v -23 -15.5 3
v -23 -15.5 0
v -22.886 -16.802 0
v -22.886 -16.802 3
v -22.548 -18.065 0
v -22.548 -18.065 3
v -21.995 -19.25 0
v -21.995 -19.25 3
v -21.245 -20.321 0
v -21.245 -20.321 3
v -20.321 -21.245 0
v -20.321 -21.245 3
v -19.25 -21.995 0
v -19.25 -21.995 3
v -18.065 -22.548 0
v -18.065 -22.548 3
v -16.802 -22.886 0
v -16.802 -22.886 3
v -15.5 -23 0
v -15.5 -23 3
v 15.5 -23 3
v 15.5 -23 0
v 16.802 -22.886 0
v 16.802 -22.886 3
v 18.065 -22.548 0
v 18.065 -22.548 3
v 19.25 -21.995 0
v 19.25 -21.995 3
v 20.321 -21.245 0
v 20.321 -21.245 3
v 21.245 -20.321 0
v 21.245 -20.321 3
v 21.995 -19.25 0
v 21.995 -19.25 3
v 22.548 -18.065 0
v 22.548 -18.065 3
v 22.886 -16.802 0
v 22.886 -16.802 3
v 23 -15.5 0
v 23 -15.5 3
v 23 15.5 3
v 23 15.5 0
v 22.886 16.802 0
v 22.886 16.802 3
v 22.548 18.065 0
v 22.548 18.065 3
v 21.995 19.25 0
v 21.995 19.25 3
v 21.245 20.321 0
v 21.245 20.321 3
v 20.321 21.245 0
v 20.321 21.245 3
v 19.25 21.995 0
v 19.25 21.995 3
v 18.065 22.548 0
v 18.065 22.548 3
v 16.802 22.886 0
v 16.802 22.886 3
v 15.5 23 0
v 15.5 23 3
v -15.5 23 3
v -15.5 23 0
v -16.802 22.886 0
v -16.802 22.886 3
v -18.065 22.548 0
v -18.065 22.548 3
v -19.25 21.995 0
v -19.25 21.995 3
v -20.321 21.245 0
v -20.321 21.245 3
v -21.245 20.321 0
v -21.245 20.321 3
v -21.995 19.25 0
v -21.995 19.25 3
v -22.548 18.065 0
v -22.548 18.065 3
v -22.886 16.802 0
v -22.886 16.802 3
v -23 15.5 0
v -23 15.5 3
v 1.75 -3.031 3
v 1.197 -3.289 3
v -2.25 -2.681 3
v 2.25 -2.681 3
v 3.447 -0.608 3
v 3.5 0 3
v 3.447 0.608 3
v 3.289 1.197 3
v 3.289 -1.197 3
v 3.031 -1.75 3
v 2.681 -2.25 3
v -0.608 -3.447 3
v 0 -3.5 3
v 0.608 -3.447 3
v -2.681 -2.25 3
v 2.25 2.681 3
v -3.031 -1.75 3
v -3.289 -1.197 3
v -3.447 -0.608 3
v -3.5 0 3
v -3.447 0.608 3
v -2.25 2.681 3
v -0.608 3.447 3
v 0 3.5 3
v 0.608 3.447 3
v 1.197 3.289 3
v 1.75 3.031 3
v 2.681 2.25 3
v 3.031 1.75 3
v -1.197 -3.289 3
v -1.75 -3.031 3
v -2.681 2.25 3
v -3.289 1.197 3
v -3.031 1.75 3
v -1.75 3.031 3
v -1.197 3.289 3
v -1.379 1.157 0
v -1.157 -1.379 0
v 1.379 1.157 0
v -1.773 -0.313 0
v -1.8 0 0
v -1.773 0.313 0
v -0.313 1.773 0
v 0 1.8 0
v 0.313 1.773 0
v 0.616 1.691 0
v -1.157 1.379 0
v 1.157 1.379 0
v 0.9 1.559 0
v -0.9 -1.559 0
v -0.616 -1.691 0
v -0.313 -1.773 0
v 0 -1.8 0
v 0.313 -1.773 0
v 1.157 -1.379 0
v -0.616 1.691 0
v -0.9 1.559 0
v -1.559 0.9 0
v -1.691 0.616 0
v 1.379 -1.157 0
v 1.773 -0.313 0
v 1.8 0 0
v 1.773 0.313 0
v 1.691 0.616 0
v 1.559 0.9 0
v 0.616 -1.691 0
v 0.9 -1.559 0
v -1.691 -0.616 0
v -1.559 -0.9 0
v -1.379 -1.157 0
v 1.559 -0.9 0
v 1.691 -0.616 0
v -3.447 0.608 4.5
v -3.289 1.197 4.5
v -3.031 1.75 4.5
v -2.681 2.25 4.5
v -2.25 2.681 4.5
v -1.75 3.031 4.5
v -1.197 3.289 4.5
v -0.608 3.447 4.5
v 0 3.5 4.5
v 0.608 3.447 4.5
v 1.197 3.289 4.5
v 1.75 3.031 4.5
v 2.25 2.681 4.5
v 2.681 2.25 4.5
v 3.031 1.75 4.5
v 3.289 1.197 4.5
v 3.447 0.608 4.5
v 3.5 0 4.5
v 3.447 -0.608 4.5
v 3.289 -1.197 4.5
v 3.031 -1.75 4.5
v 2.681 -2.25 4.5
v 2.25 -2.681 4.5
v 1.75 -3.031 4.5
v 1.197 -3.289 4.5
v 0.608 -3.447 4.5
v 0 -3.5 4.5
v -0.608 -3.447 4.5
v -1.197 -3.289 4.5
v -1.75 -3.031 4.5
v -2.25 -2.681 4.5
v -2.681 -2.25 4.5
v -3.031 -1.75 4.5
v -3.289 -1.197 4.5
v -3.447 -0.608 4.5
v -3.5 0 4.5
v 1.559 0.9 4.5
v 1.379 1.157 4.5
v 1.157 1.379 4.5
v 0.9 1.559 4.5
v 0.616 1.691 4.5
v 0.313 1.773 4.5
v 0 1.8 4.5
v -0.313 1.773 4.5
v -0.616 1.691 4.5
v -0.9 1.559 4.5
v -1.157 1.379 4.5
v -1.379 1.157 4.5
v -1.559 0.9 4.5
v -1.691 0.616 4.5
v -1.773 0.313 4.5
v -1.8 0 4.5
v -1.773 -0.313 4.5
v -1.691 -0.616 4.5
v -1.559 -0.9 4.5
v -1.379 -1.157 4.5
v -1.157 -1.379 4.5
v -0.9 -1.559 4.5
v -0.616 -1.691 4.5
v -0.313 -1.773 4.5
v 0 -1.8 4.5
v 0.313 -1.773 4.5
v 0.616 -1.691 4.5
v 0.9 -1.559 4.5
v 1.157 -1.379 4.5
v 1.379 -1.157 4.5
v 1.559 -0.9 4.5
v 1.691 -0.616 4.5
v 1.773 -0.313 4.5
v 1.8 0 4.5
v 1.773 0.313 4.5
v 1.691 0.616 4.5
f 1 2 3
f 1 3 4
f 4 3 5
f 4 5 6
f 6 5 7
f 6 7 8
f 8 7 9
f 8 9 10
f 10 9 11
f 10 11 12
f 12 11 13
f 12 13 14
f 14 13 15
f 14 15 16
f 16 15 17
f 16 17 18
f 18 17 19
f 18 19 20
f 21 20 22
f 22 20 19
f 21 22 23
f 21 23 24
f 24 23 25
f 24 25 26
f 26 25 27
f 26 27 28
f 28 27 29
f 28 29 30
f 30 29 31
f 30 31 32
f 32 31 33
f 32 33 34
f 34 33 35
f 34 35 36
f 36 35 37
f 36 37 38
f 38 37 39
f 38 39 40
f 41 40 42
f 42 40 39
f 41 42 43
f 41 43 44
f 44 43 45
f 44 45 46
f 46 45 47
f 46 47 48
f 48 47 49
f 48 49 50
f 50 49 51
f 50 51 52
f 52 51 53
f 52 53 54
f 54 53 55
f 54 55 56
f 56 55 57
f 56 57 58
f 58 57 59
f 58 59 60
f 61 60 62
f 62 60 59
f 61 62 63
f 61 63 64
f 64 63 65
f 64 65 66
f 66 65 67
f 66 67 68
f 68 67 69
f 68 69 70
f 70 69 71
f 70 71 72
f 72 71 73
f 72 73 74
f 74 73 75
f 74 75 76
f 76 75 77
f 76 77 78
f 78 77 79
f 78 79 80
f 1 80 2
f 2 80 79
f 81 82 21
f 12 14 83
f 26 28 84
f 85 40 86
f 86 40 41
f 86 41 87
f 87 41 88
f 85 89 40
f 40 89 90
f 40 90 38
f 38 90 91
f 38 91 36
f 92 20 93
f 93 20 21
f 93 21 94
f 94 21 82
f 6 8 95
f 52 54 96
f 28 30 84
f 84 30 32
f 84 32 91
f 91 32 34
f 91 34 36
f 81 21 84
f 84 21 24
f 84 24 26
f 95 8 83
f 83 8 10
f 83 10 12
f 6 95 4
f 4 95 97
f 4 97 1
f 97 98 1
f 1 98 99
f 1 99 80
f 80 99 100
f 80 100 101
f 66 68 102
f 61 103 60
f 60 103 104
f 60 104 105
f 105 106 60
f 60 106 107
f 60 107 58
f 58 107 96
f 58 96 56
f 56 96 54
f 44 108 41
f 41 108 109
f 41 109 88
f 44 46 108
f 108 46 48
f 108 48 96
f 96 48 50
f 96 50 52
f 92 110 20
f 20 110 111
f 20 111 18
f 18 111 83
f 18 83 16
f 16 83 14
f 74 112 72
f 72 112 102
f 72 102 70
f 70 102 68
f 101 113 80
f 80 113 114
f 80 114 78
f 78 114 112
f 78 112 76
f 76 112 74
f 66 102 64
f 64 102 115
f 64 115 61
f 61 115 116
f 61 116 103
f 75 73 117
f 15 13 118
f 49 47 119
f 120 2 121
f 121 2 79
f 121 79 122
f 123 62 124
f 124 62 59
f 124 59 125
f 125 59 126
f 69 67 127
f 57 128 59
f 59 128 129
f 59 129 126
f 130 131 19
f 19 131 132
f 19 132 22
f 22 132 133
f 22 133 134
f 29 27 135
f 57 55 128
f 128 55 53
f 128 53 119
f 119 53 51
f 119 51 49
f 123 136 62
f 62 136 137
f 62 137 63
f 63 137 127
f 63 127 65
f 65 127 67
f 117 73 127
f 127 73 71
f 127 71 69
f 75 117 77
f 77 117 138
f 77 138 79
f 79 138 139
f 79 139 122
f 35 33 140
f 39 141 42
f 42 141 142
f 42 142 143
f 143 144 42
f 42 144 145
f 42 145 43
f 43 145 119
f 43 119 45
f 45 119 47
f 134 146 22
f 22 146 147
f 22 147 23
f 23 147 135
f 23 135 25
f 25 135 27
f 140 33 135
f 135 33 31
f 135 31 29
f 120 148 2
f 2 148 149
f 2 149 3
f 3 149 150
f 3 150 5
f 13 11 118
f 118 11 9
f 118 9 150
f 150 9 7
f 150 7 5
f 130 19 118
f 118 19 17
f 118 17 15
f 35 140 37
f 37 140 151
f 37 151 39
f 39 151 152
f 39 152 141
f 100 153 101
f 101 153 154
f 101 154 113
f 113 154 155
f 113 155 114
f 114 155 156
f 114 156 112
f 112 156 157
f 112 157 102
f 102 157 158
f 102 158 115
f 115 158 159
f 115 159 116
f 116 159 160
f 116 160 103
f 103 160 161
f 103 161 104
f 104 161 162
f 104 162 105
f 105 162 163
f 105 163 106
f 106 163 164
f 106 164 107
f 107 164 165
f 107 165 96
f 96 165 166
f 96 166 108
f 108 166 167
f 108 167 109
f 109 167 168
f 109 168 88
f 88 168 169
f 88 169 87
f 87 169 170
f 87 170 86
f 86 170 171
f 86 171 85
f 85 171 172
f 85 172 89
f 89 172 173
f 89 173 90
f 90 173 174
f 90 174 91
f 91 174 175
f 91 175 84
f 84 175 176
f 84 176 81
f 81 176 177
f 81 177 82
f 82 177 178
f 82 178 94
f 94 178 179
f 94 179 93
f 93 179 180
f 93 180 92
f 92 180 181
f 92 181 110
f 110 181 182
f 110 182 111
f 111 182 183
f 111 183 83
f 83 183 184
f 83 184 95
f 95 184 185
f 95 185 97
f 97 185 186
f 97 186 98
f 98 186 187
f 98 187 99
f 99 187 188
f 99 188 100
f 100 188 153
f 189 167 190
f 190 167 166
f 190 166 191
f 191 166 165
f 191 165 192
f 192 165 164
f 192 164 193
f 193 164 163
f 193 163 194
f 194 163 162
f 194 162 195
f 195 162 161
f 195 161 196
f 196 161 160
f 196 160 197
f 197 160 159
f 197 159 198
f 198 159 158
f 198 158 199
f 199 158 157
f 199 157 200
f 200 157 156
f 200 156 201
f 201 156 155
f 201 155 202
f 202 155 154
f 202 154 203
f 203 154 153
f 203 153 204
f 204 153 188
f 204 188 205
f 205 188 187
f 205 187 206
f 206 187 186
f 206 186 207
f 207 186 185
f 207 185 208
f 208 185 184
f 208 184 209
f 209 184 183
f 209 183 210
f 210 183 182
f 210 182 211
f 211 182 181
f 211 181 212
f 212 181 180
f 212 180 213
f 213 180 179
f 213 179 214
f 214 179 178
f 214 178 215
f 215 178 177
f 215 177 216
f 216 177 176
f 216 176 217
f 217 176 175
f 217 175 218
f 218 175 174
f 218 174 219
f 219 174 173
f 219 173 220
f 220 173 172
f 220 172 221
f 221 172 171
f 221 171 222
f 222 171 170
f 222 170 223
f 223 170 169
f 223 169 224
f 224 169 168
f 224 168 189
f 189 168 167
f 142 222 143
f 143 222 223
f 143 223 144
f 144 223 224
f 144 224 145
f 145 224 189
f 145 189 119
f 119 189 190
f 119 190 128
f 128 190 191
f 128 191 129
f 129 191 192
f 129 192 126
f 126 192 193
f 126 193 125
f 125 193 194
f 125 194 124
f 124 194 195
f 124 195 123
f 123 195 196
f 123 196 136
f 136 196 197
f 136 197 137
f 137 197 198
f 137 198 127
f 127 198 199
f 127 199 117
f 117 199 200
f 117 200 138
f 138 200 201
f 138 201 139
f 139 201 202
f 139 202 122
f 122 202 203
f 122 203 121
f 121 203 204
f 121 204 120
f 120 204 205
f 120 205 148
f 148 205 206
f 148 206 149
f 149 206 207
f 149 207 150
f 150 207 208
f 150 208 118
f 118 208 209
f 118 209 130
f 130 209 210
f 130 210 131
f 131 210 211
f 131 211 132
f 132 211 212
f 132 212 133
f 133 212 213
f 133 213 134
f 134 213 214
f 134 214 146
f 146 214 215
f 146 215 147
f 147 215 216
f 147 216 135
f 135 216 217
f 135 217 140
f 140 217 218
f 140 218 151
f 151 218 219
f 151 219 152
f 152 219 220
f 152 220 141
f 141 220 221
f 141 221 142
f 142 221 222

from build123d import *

# Parameters (mm, degrees)
BOSS_EXTRUDE1_DEPTH            = 3
SKETCH2_R                      = 3.5
BOSS_EXTRUDE2_DEPTH            = 1.5
M3_CLEARANCE_HOLE1_D           = 3.6
M3_CLEARANCE_HOLE1_ON_FACE_2_D = 3.6


with BuildPart() as part:
    # Sketch1 → Boss-Extrude1 (new body)
    with BuildSketch(Plane.XY):
        with BuildLine():
            Line((-15.5, 23), (15.5, 23))
            ThreePointArc((15.5, 23), (20.803300859, 20.803300859), (23, 15.5))
            Line((23, 15.5), (23, -15.5))
            ThreePointArc((23, -15.5), (20.803300859, -20.803300859), (15.5, -23))
            Line((15.5, -23), (-15.5, -23))
            ThreePointArc((-15.5, -23), (-20.803300859, -20.803300859), (-23, -15.5))
            Line((-23, -15.5), (-23, 15.5))
            ThreePointArc((-23, 15.5), (-20.803300859, 20.803300859), (-15.5, 23))
        make_face()
    extrude(amount=BOSS_EXTRUDE1_DEPTH)

    # Sketch2 → Boss-Extrude2 (add)
    with BuildSketch(Plane.XY.offset(3)):
        Circle(SKETCH2_R)
    extrude(amount=BOSS_EXTRUDE2_DEPTH)

    # M3 Clearance Hole1 (through all)
    with Locations(Plane(origin=(0, 0, 0), x_dir=(-1, 0, 0), z_dir=(0, 0, -1))):
        with Locations((0, 0)):
            Hole(M3_CLEARANCE_HOLE1_D / 2)

    # M3 Clearance Hole1 on face 2 (through all)
    with Locations(Plane.XY.offset(4.5)):
        with Locations((0, 0)):
            Hole(M3_CLEARANCE_HOLE1_ON_FACE_2_D / 2)


solid = part.part
